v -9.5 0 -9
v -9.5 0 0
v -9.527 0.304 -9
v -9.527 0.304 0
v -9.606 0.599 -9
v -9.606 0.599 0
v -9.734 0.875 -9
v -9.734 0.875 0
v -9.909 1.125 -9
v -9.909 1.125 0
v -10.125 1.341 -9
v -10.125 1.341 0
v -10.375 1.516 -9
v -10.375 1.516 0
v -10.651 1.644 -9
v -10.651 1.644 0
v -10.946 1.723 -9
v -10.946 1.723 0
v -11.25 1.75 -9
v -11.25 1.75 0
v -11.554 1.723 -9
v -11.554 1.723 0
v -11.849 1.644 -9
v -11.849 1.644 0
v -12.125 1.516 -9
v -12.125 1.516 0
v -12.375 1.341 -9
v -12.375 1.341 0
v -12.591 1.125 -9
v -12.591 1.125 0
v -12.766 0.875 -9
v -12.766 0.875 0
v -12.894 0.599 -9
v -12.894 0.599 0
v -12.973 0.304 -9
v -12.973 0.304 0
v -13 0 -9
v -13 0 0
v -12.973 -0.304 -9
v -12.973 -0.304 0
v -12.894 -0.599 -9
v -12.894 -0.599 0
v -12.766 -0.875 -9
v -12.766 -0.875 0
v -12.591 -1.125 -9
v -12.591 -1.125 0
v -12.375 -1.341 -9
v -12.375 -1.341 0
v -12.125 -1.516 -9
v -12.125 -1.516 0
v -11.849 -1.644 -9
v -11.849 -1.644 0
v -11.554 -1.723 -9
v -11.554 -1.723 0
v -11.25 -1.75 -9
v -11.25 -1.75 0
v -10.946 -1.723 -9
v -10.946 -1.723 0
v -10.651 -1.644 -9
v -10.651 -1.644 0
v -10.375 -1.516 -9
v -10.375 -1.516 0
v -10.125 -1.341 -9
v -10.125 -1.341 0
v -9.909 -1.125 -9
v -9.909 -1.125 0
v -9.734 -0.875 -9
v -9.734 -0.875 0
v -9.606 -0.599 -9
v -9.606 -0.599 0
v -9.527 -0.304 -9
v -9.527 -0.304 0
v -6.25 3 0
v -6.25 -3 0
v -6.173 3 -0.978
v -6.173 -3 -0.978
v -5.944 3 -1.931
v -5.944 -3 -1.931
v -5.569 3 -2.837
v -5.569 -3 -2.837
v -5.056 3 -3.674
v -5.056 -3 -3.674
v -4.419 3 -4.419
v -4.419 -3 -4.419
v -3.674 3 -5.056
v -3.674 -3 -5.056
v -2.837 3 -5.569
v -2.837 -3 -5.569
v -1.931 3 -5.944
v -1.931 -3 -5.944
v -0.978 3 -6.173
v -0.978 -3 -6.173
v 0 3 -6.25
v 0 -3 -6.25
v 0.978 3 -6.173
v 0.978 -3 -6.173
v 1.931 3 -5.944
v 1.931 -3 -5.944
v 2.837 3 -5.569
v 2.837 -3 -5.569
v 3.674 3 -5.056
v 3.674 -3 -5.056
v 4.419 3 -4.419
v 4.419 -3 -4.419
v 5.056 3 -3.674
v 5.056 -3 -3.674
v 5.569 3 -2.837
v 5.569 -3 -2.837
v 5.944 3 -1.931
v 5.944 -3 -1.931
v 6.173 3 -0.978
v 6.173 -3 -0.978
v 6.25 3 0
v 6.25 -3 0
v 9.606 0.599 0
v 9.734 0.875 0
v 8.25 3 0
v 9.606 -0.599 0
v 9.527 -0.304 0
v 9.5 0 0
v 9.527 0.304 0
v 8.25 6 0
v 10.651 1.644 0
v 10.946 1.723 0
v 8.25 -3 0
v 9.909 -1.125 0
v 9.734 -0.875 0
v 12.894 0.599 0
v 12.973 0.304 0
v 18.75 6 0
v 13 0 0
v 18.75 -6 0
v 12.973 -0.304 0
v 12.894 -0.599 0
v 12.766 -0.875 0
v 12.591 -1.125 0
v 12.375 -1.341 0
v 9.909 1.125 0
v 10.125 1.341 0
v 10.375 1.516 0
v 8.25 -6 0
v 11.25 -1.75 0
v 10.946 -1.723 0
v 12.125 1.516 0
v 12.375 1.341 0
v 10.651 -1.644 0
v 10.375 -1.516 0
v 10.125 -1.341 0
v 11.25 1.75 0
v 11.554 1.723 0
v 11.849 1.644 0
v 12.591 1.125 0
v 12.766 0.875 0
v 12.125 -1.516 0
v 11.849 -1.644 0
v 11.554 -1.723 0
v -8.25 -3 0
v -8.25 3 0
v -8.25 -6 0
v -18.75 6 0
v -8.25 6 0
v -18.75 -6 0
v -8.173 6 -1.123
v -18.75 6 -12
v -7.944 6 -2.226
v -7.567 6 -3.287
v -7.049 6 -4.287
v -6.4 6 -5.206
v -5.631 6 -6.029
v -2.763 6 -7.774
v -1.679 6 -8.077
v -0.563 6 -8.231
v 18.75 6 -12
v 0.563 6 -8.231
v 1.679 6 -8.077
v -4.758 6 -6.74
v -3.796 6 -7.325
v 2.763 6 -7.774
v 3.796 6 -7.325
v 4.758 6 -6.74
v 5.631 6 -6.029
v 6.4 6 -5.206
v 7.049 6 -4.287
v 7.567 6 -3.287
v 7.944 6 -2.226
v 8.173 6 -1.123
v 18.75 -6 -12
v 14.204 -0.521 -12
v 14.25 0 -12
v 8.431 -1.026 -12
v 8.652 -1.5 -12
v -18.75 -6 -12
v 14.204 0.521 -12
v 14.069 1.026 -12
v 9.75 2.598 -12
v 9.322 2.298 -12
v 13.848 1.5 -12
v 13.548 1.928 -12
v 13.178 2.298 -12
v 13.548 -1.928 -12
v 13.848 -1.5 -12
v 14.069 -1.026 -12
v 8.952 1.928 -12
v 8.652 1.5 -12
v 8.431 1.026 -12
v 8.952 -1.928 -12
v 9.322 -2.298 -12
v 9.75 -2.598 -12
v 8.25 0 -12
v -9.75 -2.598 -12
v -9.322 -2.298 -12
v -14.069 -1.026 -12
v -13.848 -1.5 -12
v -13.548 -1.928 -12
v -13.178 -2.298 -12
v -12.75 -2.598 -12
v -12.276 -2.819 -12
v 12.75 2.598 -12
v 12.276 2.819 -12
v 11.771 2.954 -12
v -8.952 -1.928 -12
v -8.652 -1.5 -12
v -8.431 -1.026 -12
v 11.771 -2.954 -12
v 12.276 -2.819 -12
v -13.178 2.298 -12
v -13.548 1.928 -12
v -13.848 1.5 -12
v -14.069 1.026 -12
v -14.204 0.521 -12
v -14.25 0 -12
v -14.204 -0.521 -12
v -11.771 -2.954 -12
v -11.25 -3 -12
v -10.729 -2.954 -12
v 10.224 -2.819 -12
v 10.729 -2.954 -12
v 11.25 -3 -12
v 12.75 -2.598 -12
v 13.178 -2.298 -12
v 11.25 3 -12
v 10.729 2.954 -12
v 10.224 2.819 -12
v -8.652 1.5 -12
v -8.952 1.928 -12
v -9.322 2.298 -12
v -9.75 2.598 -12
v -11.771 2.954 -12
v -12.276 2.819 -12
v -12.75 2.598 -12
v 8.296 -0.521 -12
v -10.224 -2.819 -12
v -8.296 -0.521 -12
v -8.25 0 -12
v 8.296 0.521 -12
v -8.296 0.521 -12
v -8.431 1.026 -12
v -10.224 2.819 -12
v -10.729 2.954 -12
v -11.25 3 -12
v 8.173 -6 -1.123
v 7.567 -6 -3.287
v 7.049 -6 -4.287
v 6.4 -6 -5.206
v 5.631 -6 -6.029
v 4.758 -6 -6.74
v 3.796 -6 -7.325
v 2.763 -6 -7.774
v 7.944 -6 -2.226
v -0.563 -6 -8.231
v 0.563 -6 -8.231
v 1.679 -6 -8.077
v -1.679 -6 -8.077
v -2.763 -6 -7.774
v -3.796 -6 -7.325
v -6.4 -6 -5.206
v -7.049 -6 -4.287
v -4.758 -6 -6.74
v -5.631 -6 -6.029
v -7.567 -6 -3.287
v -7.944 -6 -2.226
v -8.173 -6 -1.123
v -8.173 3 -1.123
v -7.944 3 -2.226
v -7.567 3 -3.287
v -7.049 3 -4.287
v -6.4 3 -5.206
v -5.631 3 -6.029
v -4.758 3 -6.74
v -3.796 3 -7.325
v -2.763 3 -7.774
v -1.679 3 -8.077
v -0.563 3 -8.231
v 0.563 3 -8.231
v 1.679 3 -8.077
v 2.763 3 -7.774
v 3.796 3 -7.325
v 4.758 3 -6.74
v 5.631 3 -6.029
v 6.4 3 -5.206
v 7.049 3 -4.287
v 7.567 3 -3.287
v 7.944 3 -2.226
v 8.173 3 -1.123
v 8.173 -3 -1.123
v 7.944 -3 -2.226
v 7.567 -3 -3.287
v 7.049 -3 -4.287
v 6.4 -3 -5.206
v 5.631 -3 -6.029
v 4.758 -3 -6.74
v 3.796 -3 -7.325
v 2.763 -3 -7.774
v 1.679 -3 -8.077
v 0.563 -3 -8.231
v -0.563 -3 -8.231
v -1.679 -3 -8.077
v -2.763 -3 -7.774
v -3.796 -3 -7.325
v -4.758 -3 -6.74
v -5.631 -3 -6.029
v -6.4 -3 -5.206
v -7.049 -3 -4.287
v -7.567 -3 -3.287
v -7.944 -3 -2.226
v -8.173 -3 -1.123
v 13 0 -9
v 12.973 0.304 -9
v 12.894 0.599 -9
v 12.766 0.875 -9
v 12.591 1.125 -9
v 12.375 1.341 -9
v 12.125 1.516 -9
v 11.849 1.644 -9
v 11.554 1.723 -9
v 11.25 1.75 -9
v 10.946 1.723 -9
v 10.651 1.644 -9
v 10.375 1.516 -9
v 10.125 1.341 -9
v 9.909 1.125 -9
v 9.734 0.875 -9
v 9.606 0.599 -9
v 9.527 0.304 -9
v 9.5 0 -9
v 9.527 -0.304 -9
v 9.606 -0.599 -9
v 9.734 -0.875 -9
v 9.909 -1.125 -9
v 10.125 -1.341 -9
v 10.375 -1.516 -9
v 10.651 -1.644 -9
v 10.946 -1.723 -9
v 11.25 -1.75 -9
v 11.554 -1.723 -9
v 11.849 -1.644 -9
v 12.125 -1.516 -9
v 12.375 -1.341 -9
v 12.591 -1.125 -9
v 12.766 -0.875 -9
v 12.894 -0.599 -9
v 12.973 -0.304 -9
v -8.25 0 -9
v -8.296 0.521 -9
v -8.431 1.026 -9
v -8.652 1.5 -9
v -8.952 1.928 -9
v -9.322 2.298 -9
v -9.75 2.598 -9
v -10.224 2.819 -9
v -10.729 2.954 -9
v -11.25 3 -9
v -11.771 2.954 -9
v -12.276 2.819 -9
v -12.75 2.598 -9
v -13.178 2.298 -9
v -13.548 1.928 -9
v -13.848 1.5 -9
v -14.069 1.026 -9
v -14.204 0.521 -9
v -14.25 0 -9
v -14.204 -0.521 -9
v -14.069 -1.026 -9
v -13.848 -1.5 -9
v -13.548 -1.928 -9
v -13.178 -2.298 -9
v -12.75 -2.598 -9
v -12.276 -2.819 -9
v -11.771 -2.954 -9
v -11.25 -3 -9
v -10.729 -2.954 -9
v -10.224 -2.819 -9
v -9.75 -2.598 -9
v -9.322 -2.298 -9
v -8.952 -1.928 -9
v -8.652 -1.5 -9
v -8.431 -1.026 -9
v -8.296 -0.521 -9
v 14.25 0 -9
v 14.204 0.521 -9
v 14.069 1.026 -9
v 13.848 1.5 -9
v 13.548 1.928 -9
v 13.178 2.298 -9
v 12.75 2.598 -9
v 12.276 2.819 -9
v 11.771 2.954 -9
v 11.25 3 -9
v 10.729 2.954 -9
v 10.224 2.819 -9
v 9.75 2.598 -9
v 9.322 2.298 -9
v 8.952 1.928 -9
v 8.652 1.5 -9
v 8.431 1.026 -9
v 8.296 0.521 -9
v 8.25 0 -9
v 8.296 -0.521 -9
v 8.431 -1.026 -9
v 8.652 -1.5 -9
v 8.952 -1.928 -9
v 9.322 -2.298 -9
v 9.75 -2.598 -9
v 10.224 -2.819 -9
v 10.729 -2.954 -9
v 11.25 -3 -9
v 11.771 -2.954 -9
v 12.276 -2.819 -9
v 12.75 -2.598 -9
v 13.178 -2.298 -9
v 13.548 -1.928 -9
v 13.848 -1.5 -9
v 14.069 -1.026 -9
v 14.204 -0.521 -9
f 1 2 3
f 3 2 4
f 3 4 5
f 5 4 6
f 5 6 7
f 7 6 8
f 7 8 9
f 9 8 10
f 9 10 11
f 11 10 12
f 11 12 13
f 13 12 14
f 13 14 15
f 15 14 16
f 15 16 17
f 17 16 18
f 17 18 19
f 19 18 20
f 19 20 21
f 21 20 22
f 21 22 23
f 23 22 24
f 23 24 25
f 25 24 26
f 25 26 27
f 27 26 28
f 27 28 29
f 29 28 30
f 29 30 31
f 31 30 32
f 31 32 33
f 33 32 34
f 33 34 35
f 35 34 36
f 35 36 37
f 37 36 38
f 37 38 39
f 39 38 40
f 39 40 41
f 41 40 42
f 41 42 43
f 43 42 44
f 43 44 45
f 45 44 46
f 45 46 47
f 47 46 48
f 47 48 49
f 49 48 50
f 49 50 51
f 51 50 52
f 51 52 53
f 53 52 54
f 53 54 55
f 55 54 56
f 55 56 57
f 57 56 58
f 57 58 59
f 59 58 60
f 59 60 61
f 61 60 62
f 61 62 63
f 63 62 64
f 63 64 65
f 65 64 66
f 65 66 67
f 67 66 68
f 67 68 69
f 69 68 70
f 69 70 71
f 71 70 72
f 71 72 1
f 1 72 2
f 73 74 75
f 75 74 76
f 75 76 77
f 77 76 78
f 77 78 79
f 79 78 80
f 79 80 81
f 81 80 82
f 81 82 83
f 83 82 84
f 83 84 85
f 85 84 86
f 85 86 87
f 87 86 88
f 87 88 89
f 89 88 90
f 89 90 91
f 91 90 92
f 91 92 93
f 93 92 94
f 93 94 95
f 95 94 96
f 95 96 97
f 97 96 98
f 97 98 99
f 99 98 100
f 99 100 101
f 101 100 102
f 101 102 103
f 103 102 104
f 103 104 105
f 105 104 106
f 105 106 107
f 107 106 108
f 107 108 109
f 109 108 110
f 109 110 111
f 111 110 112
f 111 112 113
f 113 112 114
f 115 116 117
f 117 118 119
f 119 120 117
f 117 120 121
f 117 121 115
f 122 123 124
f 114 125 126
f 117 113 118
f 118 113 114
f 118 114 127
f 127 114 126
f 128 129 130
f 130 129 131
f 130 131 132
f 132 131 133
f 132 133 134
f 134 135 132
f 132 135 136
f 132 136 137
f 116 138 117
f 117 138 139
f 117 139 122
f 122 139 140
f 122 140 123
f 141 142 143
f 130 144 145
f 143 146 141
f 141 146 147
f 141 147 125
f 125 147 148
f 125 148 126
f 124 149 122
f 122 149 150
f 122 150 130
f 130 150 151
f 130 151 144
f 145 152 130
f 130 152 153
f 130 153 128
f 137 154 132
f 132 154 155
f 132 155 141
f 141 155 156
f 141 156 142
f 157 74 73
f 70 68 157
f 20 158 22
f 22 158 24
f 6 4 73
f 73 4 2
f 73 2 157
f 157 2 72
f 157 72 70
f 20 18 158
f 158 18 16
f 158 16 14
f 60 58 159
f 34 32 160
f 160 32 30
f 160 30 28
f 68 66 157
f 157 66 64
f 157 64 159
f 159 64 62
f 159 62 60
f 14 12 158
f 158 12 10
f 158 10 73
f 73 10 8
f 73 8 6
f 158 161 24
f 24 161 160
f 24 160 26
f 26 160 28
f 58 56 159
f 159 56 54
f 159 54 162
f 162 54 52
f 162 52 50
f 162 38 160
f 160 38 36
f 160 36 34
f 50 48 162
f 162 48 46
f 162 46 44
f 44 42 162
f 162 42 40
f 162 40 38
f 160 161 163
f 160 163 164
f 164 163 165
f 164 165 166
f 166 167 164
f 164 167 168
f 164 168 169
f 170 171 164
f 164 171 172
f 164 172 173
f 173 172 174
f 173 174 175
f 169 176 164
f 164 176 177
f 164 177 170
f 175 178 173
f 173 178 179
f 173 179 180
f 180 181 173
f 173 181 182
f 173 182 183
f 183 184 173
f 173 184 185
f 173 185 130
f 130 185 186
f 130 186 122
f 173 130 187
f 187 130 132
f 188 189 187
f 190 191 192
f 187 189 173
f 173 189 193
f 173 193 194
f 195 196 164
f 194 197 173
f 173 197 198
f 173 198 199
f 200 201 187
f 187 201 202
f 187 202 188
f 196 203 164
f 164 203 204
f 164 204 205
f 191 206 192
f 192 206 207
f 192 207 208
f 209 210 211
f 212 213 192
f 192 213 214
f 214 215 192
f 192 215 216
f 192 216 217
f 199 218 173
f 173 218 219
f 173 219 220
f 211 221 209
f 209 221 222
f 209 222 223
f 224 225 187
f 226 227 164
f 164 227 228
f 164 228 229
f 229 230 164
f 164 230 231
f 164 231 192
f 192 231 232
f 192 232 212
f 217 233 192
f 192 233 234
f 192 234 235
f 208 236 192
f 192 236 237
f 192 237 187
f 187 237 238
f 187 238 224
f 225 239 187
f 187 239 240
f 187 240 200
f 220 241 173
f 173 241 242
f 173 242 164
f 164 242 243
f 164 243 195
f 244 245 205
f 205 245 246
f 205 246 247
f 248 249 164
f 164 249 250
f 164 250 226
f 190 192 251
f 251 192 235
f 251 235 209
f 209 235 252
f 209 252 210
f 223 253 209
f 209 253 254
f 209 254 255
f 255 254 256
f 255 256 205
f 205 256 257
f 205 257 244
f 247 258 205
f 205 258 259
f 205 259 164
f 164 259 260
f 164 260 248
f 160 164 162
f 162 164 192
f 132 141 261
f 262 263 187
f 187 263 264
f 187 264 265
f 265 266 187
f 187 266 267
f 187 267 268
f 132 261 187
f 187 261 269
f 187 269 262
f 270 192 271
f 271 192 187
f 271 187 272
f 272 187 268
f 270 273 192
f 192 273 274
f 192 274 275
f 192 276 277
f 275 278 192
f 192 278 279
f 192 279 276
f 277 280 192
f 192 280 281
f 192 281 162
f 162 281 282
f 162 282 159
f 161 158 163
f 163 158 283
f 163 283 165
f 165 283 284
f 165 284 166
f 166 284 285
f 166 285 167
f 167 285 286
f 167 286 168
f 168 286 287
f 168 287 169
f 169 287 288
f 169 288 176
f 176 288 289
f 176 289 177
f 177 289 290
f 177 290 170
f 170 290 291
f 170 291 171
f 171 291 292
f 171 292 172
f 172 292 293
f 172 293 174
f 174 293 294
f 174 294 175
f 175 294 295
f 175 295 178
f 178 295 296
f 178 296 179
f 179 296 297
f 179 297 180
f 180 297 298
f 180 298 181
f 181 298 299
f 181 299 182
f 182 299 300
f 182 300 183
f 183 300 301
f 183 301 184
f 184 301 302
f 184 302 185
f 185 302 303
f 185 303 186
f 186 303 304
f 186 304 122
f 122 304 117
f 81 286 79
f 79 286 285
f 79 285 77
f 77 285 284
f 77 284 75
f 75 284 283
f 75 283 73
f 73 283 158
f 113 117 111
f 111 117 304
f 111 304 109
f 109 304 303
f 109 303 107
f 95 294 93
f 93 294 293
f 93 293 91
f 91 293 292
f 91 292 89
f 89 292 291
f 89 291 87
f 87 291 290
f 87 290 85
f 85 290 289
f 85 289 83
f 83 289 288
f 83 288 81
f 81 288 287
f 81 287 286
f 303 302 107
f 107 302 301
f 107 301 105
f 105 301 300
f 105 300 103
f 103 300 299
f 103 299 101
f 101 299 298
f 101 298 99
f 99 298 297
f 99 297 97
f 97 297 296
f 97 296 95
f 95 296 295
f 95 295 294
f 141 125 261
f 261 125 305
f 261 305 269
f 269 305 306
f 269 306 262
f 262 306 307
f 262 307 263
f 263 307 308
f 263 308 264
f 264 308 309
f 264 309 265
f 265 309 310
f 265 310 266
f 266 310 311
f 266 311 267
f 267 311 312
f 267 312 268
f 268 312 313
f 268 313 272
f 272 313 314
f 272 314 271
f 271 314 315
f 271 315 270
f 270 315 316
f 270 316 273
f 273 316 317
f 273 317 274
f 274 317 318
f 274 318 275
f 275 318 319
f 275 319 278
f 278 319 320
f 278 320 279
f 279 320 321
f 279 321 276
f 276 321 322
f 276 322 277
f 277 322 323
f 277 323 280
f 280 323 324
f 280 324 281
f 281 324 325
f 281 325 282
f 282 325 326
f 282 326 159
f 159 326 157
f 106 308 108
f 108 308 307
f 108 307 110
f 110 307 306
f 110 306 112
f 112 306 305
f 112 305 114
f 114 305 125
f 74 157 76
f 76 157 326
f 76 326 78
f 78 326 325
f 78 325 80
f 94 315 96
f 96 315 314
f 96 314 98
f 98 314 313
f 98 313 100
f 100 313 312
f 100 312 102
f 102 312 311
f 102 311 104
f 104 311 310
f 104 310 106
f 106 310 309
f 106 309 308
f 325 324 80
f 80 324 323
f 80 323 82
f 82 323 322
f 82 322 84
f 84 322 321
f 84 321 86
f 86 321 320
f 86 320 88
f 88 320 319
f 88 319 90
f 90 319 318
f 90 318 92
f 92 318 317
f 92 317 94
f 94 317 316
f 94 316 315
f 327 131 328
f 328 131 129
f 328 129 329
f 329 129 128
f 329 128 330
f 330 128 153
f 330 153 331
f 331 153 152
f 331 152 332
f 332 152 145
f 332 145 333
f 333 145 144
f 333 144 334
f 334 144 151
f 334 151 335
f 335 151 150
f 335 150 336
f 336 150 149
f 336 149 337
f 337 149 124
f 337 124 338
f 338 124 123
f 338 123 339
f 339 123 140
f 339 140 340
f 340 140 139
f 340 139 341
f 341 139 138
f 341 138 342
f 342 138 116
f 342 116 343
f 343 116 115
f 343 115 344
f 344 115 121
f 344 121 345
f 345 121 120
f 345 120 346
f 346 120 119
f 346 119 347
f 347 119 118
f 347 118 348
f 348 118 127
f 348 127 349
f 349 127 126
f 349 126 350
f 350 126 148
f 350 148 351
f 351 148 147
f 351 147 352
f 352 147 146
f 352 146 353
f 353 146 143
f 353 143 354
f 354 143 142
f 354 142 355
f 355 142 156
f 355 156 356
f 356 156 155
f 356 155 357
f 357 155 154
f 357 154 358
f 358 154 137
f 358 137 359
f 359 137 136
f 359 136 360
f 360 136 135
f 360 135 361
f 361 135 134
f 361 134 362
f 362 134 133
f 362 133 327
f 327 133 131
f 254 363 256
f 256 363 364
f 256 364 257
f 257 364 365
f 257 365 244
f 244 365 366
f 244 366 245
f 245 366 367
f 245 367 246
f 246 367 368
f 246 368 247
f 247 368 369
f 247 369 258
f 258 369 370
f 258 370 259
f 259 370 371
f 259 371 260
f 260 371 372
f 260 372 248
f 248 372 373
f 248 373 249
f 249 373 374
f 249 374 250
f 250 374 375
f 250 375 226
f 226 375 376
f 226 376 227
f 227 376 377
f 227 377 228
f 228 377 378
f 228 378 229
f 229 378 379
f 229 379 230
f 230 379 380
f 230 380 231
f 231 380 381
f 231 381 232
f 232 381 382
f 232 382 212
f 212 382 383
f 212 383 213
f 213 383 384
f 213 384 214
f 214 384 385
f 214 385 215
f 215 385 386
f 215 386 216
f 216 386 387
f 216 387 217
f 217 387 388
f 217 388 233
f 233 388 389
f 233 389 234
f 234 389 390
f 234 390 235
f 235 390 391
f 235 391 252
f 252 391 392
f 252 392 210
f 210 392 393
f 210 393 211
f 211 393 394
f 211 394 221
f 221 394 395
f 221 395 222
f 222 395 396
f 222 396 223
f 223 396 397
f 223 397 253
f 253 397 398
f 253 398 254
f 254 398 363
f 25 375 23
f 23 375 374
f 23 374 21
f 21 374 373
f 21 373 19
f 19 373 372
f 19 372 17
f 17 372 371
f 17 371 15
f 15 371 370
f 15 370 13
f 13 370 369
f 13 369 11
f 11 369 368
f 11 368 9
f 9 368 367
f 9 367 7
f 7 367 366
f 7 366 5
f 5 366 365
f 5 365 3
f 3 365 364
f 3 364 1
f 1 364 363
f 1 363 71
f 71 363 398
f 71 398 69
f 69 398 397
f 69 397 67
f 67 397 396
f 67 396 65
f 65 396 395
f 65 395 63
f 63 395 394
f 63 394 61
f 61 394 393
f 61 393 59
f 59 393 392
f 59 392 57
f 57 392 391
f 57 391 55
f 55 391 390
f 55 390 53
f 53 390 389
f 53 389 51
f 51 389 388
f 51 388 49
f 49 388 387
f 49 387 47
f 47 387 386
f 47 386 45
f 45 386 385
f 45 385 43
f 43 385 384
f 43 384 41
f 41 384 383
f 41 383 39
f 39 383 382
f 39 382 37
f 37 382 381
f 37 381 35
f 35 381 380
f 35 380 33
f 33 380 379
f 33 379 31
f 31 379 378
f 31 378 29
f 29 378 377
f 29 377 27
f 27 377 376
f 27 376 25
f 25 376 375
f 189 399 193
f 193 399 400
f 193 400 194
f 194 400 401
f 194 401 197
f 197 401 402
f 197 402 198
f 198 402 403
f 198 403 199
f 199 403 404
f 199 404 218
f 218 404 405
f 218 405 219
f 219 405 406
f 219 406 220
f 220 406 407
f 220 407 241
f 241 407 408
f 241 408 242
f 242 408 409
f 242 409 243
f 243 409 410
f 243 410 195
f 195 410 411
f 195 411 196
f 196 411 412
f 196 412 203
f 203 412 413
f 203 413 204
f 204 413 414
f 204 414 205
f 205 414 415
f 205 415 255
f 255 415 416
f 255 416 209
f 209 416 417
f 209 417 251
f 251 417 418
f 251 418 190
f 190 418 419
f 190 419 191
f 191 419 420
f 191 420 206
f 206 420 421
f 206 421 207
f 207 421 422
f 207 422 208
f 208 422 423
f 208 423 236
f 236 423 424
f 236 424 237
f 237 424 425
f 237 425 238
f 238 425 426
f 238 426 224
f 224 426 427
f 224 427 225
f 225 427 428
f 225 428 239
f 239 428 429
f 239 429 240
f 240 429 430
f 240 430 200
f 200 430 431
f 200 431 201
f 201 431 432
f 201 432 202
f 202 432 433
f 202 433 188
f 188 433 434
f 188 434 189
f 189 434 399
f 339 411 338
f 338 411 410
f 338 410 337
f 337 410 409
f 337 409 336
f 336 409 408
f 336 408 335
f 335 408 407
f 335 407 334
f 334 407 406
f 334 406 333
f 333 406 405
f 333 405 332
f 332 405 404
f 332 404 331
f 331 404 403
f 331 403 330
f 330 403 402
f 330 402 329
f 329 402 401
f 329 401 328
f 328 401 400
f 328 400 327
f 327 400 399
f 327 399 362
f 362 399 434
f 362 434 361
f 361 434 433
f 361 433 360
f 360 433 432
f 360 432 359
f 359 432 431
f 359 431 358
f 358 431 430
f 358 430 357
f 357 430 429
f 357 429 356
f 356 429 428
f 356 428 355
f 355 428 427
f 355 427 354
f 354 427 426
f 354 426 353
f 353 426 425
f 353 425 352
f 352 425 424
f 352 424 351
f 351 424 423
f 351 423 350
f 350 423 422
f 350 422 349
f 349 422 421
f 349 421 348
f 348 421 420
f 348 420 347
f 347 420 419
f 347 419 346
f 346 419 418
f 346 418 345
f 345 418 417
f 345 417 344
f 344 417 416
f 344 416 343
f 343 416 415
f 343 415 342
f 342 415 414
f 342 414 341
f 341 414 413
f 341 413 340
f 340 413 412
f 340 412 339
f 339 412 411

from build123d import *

# Parameters (mm, degrees)
BOSS_EXTRUDE1_DEPTH     = 6
CUT_EXTRUDE1_START      = 3
SKETCH2_R               = 8.25
CUT_EXTRUDE1_DEPTH      = 3
CUT_EXTRUDE2_REACH      = 14
SKETCH3_R               = 1.75
SKETCH4_R               = 3
CUT_EXTRUDE3_DEPTH      = 1
CUT_EXTRUDE3_DEPTH_BACK = 3


with BuildPart() as part:
    # Sketch1 → Boss-Extrude1 (new body, symmetric)
    with BuildSketch(Plane(origin=(0, 0, 0), x_dir=(1, 0, 0), z_dir=(0, 1, 0))):
        with BuildLine():
            Line((-6.25, 0), (-18.75, 0))
            Line((-18.75, 0), (-18.75, 12))
            Line((-18.75, 12), (18.75, 12))
            Line((18.75, 12), (18.75, 0))
            Line((18.75, 0), (6.25, 0))
            ThreePointArc((6.25, 0), (0, 6.25), (-6.25, 0))
        make_face()
    extrude(amount=BOSS_EXTRUDE1_DEPTH, both=True)

    # Sketch2 → Cut-Extrude1 (cut)
    with BuildSketch(Plane(origin=(0, 0, 0), x_dir=(1, 0, 0), z_dir=(0, 1, 0)).offset(CUT_EXTRUDE1_START)):
        Circle(SKETCH2_R)
    cut_extrude1 = extrude(amount=CUT_EXTRUDE1_DEPTH, mode=Mode.SUBTRACT)

    # Mirror1: Cut-Extrude1 across plane
    add(cut_extrude1.mirror(Plane.ZX), mode=Mode.SUBTRACT)

    # Sketch3 → Cut-Extrude2 (cut, up to next)
    with BuildSketch(Plane.XY, mode=Mode.PRIVATE) as cut_extrude2_sk1:
        with Locations((-11.25, 0)):
            Circle(SKETCH3_R)
    cut_extrude2_tool1 = extrude(cut_extrude2_sk1.sketch, amount=-CUT_EXTRUDE2_REACH, mode=Mode.PRIVATE) & part.part
    add(cut_extrude2_tool1.solids().sort_by_distance((-11.25, 0, 0))[0], mode=Mode.SUBTRACT)
    # Sketch3 → Cut-Extrude2 (cut, up to next)
    with BuildSketch(Plane.XY, mode=Mode.PRIVATE) as cut_extrude2_sk2:
        with Locations((11.25, 0)):
            Circle(SKETCH3_R)
    cut_extrude2_tool2 = extrude(cut_extrude2_sk2.sketch, amount=-CUT_EXTRUDE2_REACH, mode=Mode.PRIVATE) & part.part
    add(cut_extrude2_tool2.solids().sort_by_distance((11.25, 0, 0))[0], mode=Mode.SUBTRACT)

    # Sketch4 → Cut-Extrude3 (cut, two sides)
    with BuildSketch(Plane(origin=(0, 0, -12), x_dir=(-1, 0, 0), z_dir=(0, 0, -1))) as cut_extrude3_sk:
        with Locations((11.25, 0)):
            Circle(SKETCH4_R)
        with Locations((-11.25, 0)):
            Circle(SKETCH4_R)
    extrude(amount=CUT_EXTRUDE3_DEPTH, mode=Mode.SUBTRACT)
    extrude(cut_extrude3_sk.sketch, amount=-CUT_EXTRUDE3_DEPTH_BACK, mode=Mode.SUBTRACT)


solid = part.part
